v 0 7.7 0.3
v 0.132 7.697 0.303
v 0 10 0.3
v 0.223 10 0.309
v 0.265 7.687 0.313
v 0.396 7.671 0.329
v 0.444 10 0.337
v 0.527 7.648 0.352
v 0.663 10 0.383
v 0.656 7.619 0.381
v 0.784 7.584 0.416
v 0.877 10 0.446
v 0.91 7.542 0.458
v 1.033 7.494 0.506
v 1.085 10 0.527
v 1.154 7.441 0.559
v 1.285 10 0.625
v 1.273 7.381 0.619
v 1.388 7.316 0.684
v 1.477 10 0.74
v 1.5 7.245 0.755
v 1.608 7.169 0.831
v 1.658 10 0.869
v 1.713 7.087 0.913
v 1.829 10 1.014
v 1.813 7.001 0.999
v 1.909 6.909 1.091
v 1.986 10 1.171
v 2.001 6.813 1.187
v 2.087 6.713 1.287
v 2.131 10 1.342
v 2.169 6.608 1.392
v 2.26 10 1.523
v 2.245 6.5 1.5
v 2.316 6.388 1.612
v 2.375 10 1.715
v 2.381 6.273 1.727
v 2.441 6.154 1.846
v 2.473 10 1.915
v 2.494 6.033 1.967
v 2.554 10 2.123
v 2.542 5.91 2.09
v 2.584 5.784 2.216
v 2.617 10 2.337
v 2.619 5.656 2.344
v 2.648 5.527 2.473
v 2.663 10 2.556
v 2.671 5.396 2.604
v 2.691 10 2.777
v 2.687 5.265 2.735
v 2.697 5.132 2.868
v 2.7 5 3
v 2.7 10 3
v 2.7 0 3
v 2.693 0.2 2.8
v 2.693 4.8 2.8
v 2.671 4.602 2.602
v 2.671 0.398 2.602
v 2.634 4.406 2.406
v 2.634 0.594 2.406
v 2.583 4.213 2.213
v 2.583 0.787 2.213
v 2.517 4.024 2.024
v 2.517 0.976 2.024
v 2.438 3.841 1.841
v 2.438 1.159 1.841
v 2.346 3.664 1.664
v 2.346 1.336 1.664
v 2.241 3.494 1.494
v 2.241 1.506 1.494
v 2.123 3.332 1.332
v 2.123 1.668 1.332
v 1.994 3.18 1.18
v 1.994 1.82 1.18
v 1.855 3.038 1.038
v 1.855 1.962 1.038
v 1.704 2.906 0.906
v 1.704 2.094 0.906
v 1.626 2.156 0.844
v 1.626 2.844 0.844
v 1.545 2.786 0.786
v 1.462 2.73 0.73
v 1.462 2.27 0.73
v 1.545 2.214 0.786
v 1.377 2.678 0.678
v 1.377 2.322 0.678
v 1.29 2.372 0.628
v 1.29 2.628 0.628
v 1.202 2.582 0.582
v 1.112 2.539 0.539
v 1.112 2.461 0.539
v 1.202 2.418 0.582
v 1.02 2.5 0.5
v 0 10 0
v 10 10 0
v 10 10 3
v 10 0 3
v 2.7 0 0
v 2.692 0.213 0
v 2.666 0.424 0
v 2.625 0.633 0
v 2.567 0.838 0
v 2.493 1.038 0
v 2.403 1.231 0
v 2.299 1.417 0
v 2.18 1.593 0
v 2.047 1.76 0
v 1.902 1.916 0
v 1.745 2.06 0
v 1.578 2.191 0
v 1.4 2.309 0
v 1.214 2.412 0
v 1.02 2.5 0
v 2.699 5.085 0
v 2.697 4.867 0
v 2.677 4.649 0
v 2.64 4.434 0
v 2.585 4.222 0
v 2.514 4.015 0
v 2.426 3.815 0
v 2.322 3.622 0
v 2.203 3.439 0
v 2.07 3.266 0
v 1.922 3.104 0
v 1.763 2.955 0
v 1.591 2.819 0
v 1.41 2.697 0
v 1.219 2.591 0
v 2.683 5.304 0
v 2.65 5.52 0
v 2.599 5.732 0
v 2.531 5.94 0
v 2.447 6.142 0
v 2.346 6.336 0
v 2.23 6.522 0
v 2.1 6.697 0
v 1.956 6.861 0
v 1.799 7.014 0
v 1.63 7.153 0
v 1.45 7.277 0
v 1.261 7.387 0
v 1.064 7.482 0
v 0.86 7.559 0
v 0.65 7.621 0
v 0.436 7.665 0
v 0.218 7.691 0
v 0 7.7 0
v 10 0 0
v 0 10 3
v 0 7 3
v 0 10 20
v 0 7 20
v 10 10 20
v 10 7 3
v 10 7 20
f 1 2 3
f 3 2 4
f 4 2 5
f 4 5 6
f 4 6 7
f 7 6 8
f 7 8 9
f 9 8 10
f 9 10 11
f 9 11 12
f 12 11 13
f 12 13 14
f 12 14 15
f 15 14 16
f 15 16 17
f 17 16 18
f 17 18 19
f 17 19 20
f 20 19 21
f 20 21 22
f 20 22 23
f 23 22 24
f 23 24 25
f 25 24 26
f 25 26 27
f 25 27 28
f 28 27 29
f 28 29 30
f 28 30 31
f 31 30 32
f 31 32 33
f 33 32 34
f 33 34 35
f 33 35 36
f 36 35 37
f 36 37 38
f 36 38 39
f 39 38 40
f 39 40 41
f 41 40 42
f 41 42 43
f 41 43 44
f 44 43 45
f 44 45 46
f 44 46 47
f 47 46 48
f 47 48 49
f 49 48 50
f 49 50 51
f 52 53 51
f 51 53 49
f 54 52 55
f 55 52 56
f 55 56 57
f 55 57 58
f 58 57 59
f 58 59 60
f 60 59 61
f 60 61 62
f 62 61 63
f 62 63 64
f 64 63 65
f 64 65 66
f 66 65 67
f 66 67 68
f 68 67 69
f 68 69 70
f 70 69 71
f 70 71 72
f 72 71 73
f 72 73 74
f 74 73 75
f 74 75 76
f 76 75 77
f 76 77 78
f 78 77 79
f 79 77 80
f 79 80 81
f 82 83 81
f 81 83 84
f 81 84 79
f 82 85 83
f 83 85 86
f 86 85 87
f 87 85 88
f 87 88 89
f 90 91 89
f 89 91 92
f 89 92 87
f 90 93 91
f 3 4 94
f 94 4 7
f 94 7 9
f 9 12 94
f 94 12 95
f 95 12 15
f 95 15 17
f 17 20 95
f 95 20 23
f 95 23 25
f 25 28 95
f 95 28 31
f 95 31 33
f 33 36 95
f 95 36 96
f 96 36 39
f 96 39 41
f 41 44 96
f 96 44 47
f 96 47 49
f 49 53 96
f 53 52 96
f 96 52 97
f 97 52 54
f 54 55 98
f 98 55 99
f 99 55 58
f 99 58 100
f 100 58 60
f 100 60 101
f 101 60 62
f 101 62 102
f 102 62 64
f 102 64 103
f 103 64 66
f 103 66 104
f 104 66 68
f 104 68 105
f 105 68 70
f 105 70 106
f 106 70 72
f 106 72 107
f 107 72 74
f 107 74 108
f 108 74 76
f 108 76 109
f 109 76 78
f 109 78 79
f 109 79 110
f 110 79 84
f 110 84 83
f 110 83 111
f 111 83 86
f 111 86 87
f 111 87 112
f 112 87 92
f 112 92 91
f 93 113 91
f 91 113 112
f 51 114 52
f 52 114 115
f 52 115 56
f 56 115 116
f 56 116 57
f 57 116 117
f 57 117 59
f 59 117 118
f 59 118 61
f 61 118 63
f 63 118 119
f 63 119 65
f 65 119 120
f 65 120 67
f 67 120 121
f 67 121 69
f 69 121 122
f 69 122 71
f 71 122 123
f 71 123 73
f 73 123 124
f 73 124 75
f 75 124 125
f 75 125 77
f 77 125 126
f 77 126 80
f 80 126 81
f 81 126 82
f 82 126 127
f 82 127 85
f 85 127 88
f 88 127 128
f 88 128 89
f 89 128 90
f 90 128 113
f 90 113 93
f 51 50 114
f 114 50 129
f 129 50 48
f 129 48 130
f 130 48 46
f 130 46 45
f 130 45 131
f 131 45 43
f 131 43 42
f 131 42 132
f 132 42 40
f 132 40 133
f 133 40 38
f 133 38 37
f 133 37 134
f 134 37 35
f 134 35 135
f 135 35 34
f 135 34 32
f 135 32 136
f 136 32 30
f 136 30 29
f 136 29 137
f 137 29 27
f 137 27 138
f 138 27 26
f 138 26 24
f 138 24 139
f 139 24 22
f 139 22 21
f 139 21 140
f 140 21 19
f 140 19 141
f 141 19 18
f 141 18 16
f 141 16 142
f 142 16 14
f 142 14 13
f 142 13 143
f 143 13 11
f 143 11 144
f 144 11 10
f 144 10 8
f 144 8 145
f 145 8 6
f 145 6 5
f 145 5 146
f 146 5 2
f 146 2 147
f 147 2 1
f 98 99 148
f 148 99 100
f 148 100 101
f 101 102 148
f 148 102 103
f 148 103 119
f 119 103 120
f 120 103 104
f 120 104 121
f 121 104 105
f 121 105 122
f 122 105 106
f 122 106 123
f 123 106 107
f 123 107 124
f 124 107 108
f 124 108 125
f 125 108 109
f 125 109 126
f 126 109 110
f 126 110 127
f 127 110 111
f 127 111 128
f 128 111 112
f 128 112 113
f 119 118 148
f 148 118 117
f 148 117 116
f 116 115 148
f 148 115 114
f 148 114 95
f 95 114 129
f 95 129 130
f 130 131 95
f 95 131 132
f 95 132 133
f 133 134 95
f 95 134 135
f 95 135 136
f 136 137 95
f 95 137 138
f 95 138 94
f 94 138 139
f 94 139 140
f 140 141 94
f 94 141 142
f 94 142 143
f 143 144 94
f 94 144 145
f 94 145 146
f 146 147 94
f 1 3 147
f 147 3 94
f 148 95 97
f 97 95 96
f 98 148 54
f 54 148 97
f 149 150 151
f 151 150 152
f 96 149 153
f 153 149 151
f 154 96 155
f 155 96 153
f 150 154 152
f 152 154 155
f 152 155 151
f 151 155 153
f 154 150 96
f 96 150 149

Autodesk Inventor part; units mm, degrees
ref_plane "YZ Plane" through (0, 0, 0) normal (1, 0, 0) x (0, 1, 0)
ref_plane "XZ Plane" through (0, 0, 0) normal (0, 1, 0) x (-1, 0, 0)
sketch "Skizze1" plane through (0, 0, 0) normal (0, 0, 1) x (1, 0, 0)
  line L0 (0, 0) -> (10, 0)
  line L1 (10, 0) -> (10, 10)
  line L2 (10, 10) -> (0, 10)
  line L3 (0, 10) -> (0, 0)
extrude "Extrusion1" add sketch "Skizze1" along normal blind 3
ref_plane "Arbeitsebene1" through (0, 0, 3) normal (0, 0, 1) x (1, 0, 0)
sketch "Skizze2" plane through (0, 0, 3) normal (0, 0, 1) x (1, 0, 0)
  line L0 (0, 7) -> (10, 7)
  line L1 (10, 7) -> (10, 10)
  line L2 (10, 10) -> (0, 10)
  line L3 (0, 10) -> (0, 7)
extrude "Extrusion2" add sketch "Skizze2" along normal blind 17 separate body
sketch "Skizze3" plane through (0, 0, 0) normal (0, 0, 1) x (1, 0, 0)
  circle A0 centre (0, 0) radius 2.7
  circle A1 centre (0, 5) radius 2.7
extrude "Extrusion3" cut sketch "Skizze3" along normal blind 3 bodies 1
sketch "Skizze4" plane through (0, 0, 0) normal (0, 1, 0) x (-1, 0, 0)
  circle A0 centre (0, 3) radius 2.7
extrude "Extrusion4" cut sketch "Skizze4" along normal mid plane 20 bodies 1
properties part number "Eckverbinder_20x20"
